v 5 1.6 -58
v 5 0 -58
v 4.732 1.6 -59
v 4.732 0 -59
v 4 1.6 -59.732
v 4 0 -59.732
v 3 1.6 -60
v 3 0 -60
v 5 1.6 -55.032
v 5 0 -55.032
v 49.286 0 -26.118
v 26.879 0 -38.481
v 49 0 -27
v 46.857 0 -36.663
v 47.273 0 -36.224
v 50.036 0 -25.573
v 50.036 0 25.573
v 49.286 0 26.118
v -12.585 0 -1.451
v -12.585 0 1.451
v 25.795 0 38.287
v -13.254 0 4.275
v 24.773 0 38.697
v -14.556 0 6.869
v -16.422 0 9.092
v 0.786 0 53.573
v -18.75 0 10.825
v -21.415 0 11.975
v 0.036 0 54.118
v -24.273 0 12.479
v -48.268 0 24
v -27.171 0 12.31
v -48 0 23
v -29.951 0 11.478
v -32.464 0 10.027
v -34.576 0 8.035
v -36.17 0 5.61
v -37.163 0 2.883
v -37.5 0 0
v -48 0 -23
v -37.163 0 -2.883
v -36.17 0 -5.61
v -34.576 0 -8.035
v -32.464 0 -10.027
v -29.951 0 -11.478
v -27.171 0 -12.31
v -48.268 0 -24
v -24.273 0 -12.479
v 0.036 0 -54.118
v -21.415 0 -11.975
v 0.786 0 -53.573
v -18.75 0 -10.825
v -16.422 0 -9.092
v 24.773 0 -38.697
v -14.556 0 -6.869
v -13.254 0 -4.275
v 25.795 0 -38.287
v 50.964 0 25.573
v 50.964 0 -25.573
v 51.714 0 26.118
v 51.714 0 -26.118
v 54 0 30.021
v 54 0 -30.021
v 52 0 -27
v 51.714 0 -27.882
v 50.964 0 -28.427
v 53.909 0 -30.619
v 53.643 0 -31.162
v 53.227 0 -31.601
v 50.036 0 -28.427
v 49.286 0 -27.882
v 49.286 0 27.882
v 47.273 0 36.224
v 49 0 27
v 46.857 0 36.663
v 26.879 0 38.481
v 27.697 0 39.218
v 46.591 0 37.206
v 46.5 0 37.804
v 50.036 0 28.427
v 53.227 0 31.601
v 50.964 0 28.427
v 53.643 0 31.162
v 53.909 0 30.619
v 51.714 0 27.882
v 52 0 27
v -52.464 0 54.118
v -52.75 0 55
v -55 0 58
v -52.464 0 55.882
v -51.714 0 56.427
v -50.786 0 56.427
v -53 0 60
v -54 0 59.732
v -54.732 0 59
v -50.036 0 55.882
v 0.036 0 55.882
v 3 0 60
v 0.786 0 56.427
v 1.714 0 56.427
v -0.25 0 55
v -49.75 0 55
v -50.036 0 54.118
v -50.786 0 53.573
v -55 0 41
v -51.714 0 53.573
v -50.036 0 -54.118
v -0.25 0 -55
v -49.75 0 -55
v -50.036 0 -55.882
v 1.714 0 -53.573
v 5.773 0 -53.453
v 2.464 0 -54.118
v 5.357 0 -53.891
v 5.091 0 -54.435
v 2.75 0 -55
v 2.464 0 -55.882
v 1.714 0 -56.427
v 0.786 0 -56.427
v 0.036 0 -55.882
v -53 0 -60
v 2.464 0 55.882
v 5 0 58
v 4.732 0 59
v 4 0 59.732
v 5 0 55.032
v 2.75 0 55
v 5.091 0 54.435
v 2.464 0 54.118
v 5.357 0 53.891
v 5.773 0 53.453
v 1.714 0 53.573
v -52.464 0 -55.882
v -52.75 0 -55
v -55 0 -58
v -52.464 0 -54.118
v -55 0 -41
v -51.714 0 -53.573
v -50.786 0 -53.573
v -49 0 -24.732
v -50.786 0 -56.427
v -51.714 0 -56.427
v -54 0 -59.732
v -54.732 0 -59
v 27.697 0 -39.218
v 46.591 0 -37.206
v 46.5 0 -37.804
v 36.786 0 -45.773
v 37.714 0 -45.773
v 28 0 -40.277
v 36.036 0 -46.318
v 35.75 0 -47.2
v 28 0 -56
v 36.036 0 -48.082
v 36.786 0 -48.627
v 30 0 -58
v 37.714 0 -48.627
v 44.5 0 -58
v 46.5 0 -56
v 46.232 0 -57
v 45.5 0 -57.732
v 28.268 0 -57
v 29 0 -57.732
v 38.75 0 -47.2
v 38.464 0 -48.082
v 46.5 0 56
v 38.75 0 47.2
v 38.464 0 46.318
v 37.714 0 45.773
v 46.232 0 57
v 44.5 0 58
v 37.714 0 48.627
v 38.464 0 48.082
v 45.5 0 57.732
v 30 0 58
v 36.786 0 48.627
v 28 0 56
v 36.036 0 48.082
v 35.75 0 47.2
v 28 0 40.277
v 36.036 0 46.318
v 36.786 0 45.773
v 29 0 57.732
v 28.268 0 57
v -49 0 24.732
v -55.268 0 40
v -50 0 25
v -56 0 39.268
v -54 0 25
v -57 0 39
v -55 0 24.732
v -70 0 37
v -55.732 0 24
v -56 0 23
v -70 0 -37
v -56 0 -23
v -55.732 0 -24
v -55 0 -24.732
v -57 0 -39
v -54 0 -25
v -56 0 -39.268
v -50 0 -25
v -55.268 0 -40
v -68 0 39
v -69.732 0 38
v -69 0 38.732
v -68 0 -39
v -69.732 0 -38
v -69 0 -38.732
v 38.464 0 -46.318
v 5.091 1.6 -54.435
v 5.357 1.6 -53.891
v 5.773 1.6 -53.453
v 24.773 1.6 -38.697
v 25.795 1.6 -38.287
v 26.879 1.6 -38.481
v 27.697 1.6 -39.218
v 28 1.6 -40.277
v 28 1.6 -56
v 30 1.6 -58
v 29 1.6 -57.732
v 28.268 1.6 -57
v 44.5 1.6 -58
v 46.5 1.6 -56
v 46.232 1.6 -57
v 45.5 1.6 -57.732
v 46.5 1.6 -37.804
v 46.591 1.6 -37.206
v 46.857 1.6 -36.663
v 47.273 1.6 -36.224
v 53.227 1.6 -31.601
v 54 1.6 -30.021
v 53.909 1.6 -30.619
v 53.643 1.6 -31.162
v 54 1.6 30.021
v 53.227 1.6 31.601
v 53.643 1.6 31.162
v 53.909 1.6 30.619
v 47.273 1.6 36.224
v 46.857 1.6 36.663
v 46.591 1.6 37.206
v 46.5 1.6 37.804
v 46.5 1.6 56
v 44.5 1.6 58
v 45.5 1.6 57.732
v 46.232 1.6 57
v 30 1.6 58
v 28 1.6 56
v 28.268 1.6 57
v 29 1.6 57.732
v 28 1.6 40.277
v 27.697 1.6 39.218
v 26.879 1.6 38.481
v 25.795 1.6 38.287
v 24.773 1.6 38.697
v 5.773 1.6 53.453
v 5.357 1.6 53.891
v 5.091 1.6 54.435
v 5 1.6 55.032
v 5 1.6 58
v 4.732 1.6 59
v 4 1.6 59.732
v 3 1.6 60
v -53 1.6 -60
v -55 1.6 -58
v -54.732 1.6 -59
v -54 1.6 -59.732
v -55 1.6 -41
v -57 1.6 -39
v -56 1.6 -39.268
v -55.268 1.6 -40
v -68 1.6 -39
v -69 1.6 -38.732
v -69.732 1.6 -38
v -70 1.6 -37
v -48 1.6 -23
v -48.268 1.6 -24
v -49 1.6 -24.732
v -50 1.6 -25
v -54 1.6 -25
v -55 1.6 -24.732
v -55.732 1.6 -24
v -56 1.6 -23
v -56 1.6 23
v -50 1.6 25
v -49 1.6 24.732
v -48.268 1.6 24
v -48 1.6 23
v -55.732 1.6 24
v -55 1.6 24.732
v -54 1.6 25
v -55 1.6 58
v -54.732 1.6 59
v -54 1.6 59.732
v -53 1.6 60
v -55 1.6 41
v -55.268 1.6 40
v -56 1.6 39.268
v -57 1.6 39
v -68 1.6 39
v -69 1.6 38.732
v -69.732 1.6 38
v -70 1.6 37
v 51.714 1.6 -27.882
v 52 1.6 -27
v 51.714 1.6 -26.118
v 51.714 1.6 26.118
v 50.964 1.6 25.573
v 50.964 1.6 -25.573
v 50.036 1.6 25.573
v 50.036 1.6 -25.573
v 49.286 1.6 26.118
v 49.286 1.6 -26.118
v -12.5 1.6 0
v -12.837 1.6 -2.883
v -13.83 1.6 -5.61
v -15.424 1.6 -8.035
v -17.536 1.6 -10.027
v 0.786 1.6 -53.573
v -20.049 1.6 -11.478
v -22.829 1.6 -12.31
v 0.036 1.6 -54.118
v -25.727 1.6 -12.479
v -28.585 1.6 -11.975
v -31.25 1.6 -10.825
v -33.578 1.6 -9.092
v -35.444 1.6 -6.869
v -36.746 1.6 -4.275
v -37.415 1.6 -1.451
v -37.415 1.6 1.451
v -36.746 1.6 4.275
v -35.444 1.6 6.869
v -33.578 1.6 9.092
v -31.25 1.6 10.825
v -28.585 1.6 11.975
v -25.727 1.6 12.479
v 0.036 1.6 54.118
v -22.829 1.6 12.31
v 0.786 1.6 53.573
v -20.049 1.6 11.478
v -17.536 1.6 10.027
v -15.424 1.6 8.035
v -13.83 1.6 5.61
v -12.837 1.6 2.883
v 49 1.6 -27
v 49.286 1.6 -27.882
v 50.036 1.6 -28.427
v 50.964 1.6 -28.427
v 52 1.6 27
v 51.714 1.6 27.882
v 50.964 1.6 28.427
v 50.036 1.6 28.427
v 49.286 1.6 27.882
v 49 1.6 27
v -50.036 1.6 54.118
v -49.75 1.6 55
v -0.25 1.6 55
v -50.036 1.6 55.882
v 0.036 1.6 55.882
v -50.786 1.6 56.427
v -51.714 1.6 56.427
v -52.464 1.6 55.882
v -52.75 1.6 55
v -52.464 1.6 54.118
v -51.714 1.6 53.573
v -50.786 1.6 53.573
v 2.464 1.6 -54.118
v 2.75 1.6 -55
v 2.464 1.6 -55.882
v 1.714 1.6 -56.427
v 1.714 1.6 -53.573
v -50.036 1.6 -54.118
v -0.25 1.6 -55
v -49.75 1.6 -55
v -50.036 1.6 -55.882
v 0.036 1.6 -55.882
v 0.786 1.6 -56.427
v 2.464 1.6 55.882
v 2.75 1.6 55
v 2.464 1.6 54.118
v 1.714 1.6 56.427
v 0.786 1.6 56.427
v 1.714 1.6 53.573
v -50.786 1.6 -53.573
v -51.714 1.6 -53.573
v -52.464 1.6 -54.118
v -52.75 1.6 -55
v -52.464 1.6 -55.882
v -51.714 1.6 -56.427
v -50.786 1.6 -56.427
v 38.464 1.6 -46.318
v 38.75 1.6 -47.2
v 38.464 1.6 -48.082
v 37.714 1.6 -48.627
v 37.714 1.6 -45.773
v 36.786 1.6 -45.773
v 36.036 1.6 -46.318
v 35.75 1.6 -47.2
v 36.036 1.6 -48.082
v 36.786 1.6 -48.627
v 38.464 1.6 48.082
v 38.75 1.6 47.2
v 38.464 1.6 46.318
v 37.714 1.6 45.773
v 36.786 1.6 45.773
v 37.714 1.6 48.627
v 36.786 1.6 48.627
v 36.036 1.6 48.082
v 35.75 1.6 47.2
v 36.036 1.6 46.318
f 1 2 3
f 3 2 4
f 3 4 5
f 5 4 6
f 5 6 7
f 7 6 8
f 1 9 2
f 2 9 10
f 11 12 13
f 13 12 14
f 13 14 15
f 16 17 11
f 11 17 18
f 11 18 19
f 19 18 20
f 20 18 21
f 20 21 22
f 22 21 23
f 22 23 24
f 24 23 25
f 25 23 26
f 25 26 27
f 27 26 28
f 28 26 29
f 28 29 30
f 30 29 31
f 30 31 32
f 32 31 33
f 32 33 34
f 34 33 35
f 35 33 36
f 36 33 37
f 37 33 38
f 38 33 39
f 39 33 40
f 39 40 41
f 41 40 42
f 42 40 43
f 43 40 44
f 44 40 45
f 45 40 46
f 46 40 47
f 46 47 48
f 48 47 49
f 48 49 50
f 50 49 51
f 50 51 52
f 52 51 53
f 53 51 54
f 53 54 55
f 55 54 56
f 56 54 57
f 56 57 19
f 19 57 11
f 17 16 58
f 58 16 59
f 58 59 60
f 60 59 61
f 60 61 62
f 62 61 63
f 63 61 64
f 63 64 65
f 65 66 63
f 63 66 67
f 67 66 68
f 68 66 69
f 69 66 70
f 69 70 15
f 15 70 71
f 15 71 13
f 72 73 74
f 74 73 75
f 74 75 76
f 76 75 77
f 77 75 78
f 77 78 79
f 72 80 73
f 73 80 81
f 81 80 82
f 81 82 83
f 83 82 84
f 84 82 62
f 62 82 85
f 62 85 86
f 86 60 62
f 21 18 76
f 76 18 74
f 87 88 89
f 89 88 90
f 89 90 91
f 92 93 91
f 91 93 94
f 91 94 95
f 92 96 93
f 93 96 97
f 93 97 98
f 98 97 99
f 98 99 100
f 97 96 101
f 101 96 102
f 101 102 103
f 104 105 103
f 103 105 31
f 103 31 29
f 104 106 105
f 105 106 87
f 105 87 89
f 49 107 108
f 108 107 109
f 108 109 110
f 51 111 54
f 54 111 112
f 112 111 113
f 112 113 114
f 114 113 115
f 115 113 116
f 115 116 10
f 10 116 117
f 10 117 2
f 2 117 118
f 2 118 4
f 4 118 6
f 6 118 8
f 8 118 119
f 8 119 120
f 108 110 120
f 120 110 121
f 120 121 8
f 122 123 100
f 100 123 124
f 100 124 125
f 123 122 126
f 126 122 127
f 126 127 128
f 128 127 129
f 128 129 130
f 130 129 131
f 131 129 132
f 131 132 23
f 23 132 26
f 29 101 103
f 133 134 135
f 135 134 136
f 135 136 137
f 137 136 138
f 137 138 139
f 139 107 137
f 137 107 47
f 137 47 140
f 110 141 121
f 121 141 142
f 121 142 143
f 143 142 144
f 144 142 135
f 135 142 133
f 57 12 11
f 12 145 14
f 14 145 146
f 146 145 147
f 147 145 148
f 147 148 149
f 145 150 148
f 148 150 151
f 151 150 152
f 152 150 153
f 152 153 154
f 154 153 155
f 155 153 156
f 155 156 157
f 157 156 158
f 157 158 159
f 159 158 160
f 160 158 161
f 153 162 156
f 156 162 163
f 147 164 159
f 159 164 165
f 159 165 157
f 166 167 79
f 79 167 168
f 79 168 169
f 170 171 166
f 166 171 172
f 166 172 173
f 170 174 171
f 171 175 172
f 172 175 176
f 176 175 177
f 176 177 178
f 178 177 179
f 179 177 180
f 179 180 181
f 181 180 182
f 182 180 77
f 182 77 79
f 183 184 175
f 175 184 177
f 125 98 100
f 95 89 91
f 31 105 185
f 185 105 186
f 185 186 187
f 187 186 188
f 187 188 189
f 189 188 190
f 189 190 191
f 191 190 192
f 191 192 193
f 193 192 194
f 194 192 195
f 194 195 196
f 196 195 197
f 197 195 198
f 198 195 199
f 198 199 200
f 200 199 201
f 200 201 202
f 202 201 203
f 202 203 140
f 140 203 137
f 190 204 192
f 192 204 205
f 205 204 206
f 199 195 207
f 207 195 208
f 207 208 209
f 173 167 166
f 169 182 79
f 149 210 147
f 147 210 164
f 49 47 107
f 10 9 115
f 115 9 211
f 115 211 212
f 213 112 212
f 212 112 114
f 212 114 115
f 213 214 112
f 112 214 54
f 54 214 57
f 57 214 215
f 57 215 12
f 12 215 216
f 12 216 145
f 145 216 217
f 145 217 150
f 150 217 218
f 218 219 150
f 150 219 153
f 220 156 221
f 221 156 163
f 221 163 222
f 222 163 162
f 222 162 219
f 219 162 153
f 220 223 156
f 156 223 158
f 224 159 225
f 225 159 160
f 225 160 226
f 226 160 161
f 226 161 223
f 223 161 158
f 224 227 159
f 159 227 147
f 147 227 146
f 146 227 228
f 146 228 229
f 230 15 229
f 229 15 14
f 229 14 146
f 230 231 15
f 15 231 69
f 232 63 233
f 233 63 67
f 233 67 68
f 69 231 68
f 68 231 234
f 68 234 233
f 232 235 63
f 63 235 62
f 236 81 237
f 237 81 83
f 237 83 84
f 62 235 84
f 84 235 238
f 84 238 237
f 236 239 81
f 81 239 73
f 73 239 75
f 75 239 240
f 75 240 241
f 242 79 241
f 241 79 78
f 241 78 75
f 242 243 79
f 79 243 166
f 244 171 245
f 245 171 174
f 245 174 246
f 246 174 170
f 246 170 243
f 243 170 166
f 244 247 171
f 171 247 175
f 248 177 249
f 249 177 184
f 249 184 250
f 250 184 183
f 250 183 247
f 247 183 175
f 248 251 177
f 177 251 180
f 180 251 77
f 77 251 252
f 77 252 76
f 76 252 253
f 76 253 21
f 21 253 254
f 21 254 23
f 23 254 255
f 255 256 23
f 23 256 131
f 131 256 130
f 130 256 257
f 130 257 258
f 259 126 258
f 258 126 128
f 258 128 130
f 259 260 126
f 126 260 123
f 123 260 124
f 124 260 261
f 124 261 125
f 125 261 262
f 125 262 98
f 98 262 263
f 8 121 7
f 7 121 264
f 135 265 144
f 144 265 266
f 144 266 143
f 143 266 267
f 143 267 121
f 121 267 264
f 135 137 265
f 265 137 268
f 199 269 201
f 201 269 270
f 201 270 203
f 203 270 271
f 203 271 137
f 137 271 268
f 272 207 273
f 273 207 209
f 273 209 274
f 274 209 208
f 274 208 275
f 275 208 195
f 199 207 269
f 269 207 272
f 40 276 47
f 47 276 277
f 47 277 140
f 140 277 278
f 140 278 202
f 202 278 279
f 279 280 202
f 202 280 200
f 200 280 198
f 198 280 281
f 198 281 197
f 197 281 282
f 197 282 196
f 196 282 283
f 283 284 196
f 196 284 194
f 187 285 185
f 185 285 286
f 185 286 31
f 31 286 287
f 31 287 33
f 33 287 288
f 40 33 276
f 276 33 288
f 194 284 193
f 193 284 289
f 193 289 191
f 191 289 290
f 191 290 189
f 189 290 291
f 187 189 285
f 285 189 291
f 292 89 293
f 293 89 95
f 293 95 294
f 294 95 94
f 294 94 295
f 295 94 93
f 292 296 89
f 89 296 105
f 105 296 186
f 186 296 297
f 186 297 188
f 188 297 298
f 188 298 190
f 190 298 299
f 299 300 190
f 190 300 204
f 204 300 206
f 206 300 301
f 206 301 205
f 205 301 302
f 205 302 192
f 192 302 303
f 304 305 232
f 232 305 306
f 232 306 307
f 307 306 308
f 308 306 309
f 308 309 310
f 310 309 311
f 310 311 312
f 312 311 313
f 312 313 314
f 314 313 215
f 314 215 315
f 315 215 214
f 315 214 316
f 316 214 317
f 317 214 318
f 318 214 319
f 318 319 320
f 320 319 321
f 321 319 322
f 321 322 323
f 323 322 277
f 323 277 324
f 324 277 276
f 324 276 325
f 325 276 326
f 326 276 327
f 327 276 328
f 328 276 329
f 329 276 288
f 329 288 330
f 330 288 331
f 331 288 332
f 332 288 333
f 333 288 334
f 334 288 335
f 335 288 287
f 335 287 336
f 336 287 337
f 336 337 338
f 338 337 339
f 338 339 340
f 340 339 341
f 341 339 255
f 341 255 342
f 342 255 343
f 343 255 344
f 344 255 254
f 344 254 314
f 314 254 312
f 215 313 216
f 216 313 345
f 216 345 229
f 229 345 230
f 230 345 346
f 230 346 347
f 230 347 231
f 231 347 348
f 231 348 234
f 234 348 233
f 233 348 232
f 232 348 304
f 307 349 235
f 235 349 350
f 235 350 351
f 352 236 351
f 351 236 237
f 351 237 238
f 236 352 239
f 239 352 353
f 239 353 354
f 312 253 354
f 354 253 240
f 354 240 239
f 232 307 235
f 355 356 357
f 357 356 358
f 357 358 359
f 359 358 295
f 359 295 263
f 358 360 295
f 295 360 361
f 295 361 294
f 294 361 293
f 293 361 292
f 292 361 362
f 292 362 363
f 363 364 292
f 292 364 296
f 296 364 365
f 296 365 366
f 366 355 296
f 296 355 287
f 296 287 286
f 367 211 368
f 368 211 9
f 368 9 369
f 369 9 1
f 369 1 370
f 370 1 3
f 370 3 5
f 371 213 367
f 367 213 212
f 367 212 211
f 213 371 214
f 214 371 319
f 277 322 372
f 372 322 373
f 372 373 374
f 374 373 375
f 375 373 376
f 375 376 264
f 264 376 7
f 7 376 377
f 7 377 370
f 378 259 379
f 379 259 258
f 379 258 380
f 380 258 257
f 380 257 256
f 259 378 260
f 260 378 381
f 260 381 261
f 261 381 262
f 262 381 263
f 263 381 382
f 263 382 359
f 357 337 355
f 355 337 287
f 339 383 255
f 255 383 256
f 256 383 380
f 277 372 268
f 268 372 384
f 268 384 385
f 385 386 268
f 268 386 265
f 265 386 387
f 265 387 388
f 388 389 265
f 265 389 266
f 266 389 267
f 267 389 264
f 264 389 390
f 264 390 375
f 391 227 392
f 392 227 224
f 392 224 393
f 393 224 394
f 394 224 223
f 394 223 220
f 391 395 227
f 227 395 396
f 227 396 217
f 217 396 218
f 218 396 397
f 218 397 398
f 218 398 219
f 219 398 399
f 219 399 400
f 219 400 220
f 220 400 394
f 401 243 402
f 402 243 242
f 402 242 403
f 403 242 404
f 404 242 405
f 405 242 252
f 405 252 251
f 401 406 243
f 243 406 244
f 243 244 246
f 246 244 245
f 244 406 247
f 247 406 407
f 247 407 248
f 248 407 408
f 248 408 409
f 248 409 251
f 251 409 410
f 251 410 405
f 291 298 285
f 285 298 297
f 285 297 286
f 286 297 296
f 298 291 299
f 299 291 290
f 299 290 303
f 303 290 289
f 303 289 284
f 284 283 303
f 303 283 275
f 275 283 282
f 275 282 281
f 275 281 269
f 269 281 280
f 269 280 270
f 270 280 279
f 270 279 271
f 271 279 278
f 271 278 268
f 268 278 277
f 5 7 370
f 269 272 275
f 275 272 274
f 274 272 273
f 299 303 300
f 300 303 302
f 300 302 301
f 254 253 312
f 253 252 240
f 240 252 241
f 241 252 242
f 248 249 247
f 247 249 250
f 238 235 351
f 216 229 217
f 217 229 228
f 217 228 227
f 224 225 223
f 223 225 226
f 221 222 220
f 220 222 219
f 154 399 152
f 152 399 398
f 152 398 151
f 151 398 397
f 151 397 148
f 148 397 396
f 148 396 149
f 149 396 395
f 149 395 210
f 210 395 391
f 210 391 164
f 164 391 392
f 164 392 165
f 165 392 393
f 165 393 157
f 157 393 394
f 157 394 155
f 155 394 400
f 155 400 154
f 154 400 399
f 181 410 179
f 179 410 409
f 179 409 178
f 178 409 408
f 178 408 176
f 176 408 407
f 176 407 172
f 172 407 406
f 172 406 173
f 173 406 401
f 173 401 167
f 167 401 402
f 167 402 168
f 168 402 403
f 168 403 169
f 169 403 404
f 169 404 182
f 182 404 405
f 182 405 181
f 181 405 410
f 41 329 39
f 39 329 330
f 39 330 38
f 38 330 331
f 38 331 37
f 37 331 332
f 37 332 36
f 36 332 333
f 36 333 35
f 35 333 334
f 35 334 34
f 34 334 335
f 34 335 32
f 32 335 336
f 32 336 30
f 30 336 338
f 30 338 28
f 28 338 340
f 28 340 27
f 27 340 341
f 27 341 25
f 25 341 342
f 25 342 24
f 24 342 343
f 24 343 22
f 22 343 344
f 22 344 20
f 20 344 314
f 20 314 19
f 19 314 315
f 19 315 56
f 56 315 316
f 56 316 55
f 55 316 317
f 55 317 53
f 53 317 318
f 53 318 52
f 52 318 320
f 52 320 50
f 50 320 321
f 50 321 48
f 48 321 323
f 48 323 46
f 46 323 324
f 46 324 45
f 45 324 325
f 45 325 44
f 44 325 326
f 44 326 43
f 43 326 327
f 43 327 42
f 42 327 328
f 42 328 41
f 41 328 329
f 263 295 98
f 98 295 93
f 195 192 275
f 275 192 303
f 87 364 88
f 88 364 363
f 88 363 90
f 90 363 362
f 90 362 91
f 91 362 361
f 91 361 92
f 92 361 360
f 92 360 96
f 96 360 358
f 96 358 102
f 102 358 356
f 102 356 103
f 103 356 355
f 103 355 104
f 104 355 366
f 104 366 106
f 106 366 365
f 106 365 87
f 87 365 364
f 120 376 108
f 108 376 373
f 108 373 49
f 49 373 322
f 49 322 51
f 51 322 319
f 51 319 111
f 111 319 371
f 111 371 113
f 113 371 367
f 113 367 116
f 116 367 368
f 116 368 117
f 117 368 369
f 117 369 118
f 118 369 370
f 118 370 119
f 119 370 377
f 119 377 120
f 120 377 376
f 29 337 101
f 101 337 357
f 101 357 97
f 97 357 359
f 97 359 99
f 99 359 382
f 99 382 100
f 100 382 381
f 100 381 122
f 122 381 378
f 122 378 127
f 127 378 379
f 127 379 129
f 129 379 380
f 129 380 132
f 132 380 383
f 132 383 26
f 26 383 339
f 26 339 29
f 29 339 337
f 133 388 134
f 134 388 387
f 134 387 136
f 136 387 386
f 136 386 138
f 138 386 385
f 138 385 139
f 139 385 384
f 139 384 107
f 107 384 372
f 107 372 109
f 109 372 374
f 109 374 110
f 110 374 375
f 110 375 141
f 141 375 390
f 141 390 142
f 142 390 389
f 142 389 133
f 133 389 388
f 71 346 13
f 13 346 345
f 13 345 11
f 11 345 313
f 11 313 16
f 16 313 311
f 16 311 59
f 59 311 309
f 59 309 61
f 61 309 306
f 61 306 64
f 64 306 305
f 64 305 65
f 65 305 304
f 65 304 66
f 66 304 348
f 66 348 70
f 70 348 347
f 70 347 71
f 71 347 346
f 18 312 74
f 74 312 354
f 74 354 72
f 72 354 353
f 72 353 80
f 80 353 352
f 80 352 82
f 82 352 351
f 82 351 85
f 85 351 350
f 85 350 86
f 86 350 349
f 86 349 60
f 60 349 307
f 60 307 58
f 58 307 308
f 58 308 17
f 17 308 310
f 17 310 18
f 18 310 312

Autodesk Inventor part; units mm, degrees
ref_plane "YZ Plane" through (0, 0, 0) normal (1, 0, 0) x (0, 1, 0)
ref_plane "XZ Plane" through (0, 0, 0) normal (0, 1, 0) x (-1, 0, 0)
ref_plane "XY Plane" through (0, 0, 0) normal (0, 0, 1) x (1, 0, 0)
sketch "Esboço1" plane through (0, 0, 0) normal (0, 1, 0) x (-1, 0, 0)
  line L0 (-70, 60) -> (70, 60)
  line L1 (70, 60) -> (70, -60)
  line L2 (70, -60) -> (-70, -60)
  line L3 (-70, -60) -> (-70, 60)
  line L4 (-70, 60) -> (70, -60) construction
  line L5 (70, 60) -> (-70, -60) construction
  point P0 (0, 0)
  dimension "d0" = 140
  dimension "d1" = 120
extrude "Extrusão1" add sketch "Esboço1" along normal blind 1.6
sketch "Esboço2" plane through (0, 1.6, 0) normal (0, 1, 0) x (1, 0, 0)
  line L0 (-94.6357, 0) -> (83.6022, 0)
  line L1 (-70, -37) -> (-52, -37)
  line L2 (-52, 37) -> (-70, 37)
  line L3 (-70, 37) -> (-70, -37)
  line L4 (-70, -37) -> (-52, 37) construction
  line L5 (-52, -37) -> (-70, 37) construction
  line L6 (-70, 60) -> (-70, -60) projected
  line L7 (-70, 0) -> (-70, 0)
  line L8 (-70, 0) -> (-25, 0)
  circle A0 centre (-25, 0) radius 12.5
  line L9 (-70, -60) -> (70, -60) projected
  line L10 (-20, -60) -> (-50, -60)
  line L11 (-20, -60) -> (10, -60)
  line L12 (70, 60) -> (-70, 60) projected
  line L13 (-55, -60) -> (5, -60)
  line L14 (5, -60) -> (5, -45)
  line L15 (-55, -45) -> (-55, -60)
  line L16 (-52, 0) -> (-70, 0)
  line L17 (-56, 25) -> (-48, 25)
  line L18 (-48, 25) -> (-48, -25)
  line L19 (-48, -25) -> (-56, -25)
  line L20 (-56, -25) -> (-56, 25)
  line L21 (-56, 25) -> (-48, -25) construction
  line L22 (-48, 25) -> (-56, -25) construction
  line L23 (-55, 60) -> (5, 60)
  line L24 (5, 60) -> (5, 45)
  line L25 (-55, 45) -> (-55, 60)
  line L26 (-25, 76.0053) -> (-25, -77.5323)
  line L27 (-35, -45) -> (-35, -37)
  line L28 (-35, -37) -> (-15, -37)
  line L29 (-15, -37) -> (-15, -45)
  line L30 (5, -45) -> (-15, -45)
  line L31 (-35, -45) -> (-55, -45)
  line L32 (-35, 45) -> (-35, 37)
  line L33 (-35, 37) -> (-15, 37)
  line L34 (-15, 37) -> (-15, 45)
  line L35 (5, 45) -> (-15, 45)
  line L36 (-35, 45) -> (-55, 45)
  line L37 (-55, -60) -> (5, -45) construction
  line L38 (5, -60) -> (-55, -45) construction
  line L39 (-35, 45) -> (-15, 37) construction
  line L40 (-15, 45) -> (-35, 37) construction
  point P0 (0, 0)
  point P1 (-61, 0)
  point P2 (-25, 41)
  dimension "d4" = 18
  dimension "d5" = 74
  dimension "d6" = 0
  dimension "d7" = 45
  dimension "d8" = 25
  dimension "d28" = 15
  dimension "d30" = 18
  dimension "d31" = 8
  dimension "d32" = 50
  dimension "d35" = 15
  dimension "d36" = 20
  dimension "d38" = 8
  dimension "d40" = 20
  dimension "d41" = 8
  dimension "d42" = 60
  dimension "d43" = 60
extrude "Extrusão4" cut sketch "Esboço2" against normal through all contours L26 A0 L0 | L26 A0 L0 | L0 A0 L26 | L0 A0 L26 | L18 L19 L20 L0 | L0 L20 L17 L18
sketch "Esboço3" plane through (0, 1.6, 0) normal (0, 1, 0) x (1, 0, 0)
  line L0 (44.5, -40) -> (30, -40) construction
  line L1 (30, -40) -> (30, -72.5) construction
  line L2 (30, -72.5) -> (44.5, -72.5) construction
  line L3 (44.5, -72.5) -> (44.5, -40) construction
  line L4 (30, 40) -> (44.5, 40) construction
  line L5 (44.5, 40) -> (44.5, 72.5) construction
  line L6 (44.5, 72.5) -> (30, 72.5) construction
  line L7 (30, 72.5) -> (30, 40) construction
  line L8 (37.25, -40) -> (37.25, -47.2) construction
  circle A0 centre (37.25, -47.2) radius 1.5
  line L9 (37.25, 40) -> (37.25, 47.2) construction
  circle A1 centre (37.25, 47.2) radius 1.5
  line L10 (-70, 60) -> (-70, -60) projected
  line L11 (52, 14) -> (49.5, 14) construction
  line L12 (49.5, 14) -> (49.5, -14) construction
  line L13 (49.5, -14) -> (52, -14) construction
  line L14 (52, -14) -> (52, 14) construction
  line L15 (52, 14) -> (49.5, -14) construction
  line L16 (49.5, 14) -> (52, -14) construction
  line L17 (54, 16) -> (47.5, 16)
  line L18 (47.5, 16) -> (47.5, -16) construction
  line L19 (47.5, -16) -> (54, -16) construction
  line L20 (54, -16) -> (54, 16)
  line L21 (70, -60) -> (70, 60) projected
  line L22 (5, -54.0532) -> (28, -36.1915)
  line L23 (28, -36.1915) -> (28, -58)
  line L24 (44.5, -69.5) -> (44.5446, -69.5)
  line L25 (46.5, -58) -> (46.5, -38)
  line L26 (46.5, -38) -> (46.5, -36.8245)
  line L27 (46.5, -58) -> (28, -58)
  line L28 (-70, -60) -> (70, -60) projected
  line L29 (7, -60) -> (5, -60)
  line L30 (70, 60) -> (-70, 60) projected
  line L31 (70, 60) -> (7, 60)
  line L32 (5, 54.0532) -> (28, 36.1915)
  line L33 (28, 58) -> (28, 36.1915)
  line L34 (44.5446, 69.5) -> (44.5, 69.5)
  line L35 (46.5, 58) -> (28, 58)
  line L36 (46.5, 36.8245) -> (46.5, 58)
  line L37 (5, 54.0532) -> (5, 60)
  line L38 (5, -54.0532) -> (5, -60)
  line L39 (54, -16) -> (54, -31)
  line L40 (54, -31) -> (46.5, -36.8245)
  line L41 (54, 16) -> (54, 31)
  line L42 (54, 31) -> (46.5, 36.8245)
  point P0 (0, 0)
  dimension "d59" = 14.5
  dimension "d60" = 32.5
  dimension "d63" = 32.5
  dimension "d64" = 14.5
  dimension "d76" = 7.2
  dimension "d77" = 3
  dimension "d78" = 7.2
  dimension "d79" = 3
  dimension "d97" = 2.5
  dimension "d98" = 28
  dimension "d99" = 2
  dimension "d103" = 2
  dimension "d104" = 2
  dimension "d105" = 63
  dimension "d107" = 2
  dimension "d132" = 15
  dimension "d133" = 15
sketch "Esboço4" plane through (0, 1.6, 0) normal (0, 1, 0) x (1, 0, 0)
  line L0 (-70, 60) -> (-70, -60) projected
  line L1 (-70, 0) -> (-70, -100)
  line L2 (-70, -100) -> (180, -100)
  line L3 (180, -100) -> (180, 100)
  line L4 (180, 100) -> (-70, 100)
  line L5 (-70, 100) -> (-70, -100)
  line L6 (250, 0) -> (-150, 0)
  line L7 (-430, 10) -> (570, 10)
  line L8 (570, 10) -> (570, -10)
  line L9 (570, -10) -> (-430, -10)
  line L10 (-430, -10) -> (-430, 10)
  line L11 (70, -60) -> (70, 60) projected
  line L12 (-430, 10) -> (570, -10) construction
  line L13 (570, 10) -> (-430, -10) construction
  line L14 (27.5, -90) -> (47.5, -90)
  line L15 (47.5, -90) -> (47.5, -50)
  line L16 (47.5, -50) -> (27.5, -50)
  line L17 (27.5, -50) -> (27.5, -90)
  line L18 (27.5, -90) -> (47.5, -50) construction
  line L19 (47.5, -90) -> (27.5, -50) construction
  line L20 (70, 60) -> (-70, 60) projected
  line L21 (47.5, 90) -> (27.5, 90)
  line L22 (27.5, 90) -> (27.5, 50)
  line L23 (27.5, 50) -> (47.5, 50)
  line L24 (47.5, 50) -> (47.5, 90)
  line L25 (47.5, 90) -> (27.5, 50) construction
  line L26 (27.5, 90) -> (47.5, 50) construction
  line L27 (0, -100) -> (0, 100) construction
  point P0 (0, 0)
  point P1 (70, 0)
  point P2 (37.5, -70)
  point P3 (37.5, 70)
  dimension "d53" = 100
  dimension "d54" = 250
  dimension "d55" = 200
  dimension "d65" = 1000
  dimension "d66" = 20
  dimension "d68" = 20
  dimension "d69" = 40
  dimension "d70" = 20
  dimension "d71" = 40
  dimension "d72" = 40
  dimension "d73" = 40
  dimension "d80" = 37.5
  dimension "d81" = 37.5
extrude "Extrusão5" cut sketch "Esboço3" against normal through all contours A0 | A1
sketch "Esboço5" plane through (0, 1.6, 0) normal (0, 1, 0) x (1, 0, 0)
  line L0 (70, 60) -> (-70, 60) projected
  line L1 (-70, 60) -> (-55, 60)
  line L2 (-55, 60) -> (-55, 39)
  line L3 (-55, 39) -> (-70, 39)
  line L4 (-70, 39) -> (-70, 60)
  line L5 (-70, -60) -> (70, -60) projected
  line L6 (-70, -60) -> (-55, -60)
  line L7 (-55, -60) -> (-55, -39)
  line L8 (-55, -39) -> (-70, -39)
  line L9 (-70, -39) -> (-70, -60)
  line L10 (-70, 60) -> (-70, -60) projected
  line L11 (-55, 39) -> (-70, 39)
  line L12 (-70, 39) -> (-70, 60)
  line L13 (-70, 60) -> (-55, 60)
  line L14 (-55, 60) -> (-55, 39)
  line L15 (-55, -39) -> (-70, -39)
  line L16 (-70, -39) -> (-70, -60)
  line L17 (-70, -60) -> (-55, -60)
  line L18 (-55, -60) -> (-55, -39)
  point P0 (0, 0)
  dimension "d84" = 15
  dimension "d85" = 21
  dimension "d86" = 15
  dimension "d87" = 21
extrude "Extrusão6" cut sketch "Esboço5" against normal through all
fillet "Arredondamento1" radius 2 10 edges at (-70, 0.8, 39) (-55, 0.8, 39) (-55, 0.8, 60) (-56, 0.8, 25) (-48, 0.8, 25) (-56, 0.8, -25) (-48, 0.8, -25) (-70, 0.8, -39) (-55, 0.8, -39) (-55, 0.8, -60)
sketch "Esboço7" plane through (0, 1.6, 0) normal (0, 1, 0) x (1, 0, 0)
  line L0 (-3.4695, -17.196) -> (-3.4695, -2.1961) construction
  line L1 (-3.4695, -2.1961) -> (11.6526, -2.1961) construction
  line L2 (11.6526, -2.1961) -> (11.6526, -17.196) construction
  line L3 (11.6526, -17.196) -> (-3.4695, -17.196) construction
  point P0 (0, 0)
extrude "Extrusão10" cut sketch "Esboço3" against normal through all contours L30 L21 L28 L38 L22 L23 L27 L25 L26 L40 L39 L20 L41 L42 L36 L35 L33 L32 L37
fillet "Arredondamento4" radius 2 14 edges at (5, 0.8, 60) (5, 0.8, 54.0532) (28, 0.8, 36.1915) (28, 0.8, 58) (46.5, 0.8, 58) (46.5, 0.8, 36.8245) (54, 0.8, 31) (54, 0.8, -31) (46.5, 0.8, -36.8245) (46.5, 0.8, -58) (28, 0.8, -58) (28, 0.8, -36.1915) (5, 0.8, -54.0532) (5, 0.8, -60)
sketch "Esboço8" plane through (0, 1.6, 0) normal (0, 1, 0) x (1, 0, 0)
  line L0 (-55, -60) -> (5, -60)
  line L1 (5, -60) -> (5, -50)
  line L2 (5, -50) -> (-55, -50)
  line L3 (-55, -50) -> (-55, -60)
  circle A0 centre (-51.25, -55) radius 1.5
  circle A1 centre (1.25, -55) radius 1.5
  line L4 (-70, 37) -> (-70, -37) projected
  line L5 (-70, 0) -> (54, 0)
  line L6 (54, 30.0209) -> (54, -30.0209) projected
  line L7 (-55, 60) -> (5, 60)
  line L8 (5, 60) -> (5, 50)
  line L9 (5, 50) -> (-55, 50)
  line L10 (-55, 50) -> (-55, 60)
  circle A2 centre (-51.25, 55) radius 1.5
  circle A3 centre (1.25, 55) radius 1.5
  point P0 (0, 0)
  point P1 (-55, -55)
  dimension "d137" = 60
  dimension "d138" = 10
  dimension "d140" = 3
  dimension "d142" = 3
  dimension "d143" = 3.75
  dimension "d144" = 3.75
  dimension "d145" = 5
  dimension "d146" = 5
  dimension "d147" = 60
  dimension "d148" = 10
  dimension "d149" = 3
  dimension "d150" = 3
  dimension "d151" = 3.75
  dimension "d152" = 5
  dimension "d153" = 5
  dimension "d154" = 3.75
extrude "Extrusão11" cut sketch "Esboço8" against normal through all contours A0 | A1 | A2 | A3
sketch "Esboço9" plane through (0, 1.6, 0) normal (0, 1, 0) x (1, 0, 0)
  line L0 (54, -38.06) -> (50.5, -38.06)
  line L1 (50.5, -38.06) -> (50.5, 41.775)
  line L2 (50.5, 41.775) -> (54, 41.775)
  line L3 (54, 41.775) -> (54, -38.06)
  line L4 (52.2999, -27) -> (48.7001, -27)
  line L5 (48.7001, -27) -> (48.7001, 27)
  line L6 (48.7001, 27) -> (52.2999, 27)
  line L7 (52.2999, 27) -> (52.2999, -27)
  line L8 (52.2999, -27) -> (48.7001, 27) construction
  line L9 (48.7001, -27) -> (52.2999, 27) construction
  circle A0 centre (50.5, -27) radius 1.5
  circle A1 centre (50.5, 27) radius 1.5
  point P0 (0, 0)
  point P1 (50.5, 0)
  dimension "d158" = 3.5
  dimension "d159" = 54
  dimension "d160" = 3
  dimension "d161" = 3
extrude "Extrusão12" cut sketch "Esboço9" against normal through all contours A0 L4 L1 | L1 L4 A0 | L4 A0 L1 | L1 A0 L4 | A1 L6 L1 | L1 L6 A1 | L6 A1 L1 | L1 A1 L6
properties part number "PCB"
